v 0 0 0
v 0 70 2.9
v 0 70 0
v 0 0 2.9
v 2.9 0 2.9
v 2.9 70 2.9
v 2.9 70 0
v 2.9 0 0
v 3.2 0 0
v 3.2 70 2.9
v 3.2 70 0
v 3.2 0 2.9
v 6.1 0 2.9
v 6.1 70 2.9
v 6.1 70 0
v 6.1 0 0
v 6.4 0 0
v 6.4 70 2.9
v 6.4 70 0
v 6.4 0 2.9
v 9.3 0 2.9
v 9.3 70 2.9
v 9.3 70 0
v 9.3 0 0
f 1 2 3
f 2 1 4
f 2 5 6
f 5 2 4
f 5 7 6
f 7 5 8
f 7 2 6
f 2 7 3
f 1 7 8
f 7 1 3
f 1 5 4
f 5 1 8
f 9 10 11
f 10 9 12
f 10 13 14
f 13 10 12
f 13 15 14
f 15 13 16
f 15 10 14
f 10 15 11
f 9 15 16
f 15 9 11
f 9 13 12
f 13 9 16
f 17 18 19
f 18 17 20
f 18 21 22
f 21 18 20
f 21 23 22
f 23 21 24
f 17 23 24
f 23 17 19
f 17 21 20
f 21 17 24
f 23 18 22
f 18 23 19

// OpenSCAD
cube([2.9 , 70, 2.9]);
translate([3.2,0,0]) cube([2.9, 70, 2.9]);
translate([6.4,0,0]) cube([2.9, 70, 2.9]);
